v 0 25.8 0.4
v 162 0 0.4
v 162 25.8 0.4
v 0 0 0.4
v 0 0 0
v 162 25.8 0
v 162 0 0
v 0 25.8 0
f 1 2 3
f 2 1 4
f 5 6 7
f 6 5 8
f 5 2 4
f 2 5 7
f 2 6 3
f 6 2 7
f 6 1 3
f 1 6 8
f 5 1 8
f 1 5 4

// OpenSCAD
// The measures of the u-profile
ml_up_width=486;
ml_up_depth=30;
ml_up_heigth=20;
ml_up_thickness=2;

ml_dif_part_count=3;
ml_dif_thickness=0.4;

mf_dif_depth=ml_up_depth - ml_up_thickness - ml_up_thickness - 0.2;
mf_dif_width=ml_up_width / ml_dif_part_count;

cube([mf_dif_width, mf_dif_depth, ml_dif_thickness]);
